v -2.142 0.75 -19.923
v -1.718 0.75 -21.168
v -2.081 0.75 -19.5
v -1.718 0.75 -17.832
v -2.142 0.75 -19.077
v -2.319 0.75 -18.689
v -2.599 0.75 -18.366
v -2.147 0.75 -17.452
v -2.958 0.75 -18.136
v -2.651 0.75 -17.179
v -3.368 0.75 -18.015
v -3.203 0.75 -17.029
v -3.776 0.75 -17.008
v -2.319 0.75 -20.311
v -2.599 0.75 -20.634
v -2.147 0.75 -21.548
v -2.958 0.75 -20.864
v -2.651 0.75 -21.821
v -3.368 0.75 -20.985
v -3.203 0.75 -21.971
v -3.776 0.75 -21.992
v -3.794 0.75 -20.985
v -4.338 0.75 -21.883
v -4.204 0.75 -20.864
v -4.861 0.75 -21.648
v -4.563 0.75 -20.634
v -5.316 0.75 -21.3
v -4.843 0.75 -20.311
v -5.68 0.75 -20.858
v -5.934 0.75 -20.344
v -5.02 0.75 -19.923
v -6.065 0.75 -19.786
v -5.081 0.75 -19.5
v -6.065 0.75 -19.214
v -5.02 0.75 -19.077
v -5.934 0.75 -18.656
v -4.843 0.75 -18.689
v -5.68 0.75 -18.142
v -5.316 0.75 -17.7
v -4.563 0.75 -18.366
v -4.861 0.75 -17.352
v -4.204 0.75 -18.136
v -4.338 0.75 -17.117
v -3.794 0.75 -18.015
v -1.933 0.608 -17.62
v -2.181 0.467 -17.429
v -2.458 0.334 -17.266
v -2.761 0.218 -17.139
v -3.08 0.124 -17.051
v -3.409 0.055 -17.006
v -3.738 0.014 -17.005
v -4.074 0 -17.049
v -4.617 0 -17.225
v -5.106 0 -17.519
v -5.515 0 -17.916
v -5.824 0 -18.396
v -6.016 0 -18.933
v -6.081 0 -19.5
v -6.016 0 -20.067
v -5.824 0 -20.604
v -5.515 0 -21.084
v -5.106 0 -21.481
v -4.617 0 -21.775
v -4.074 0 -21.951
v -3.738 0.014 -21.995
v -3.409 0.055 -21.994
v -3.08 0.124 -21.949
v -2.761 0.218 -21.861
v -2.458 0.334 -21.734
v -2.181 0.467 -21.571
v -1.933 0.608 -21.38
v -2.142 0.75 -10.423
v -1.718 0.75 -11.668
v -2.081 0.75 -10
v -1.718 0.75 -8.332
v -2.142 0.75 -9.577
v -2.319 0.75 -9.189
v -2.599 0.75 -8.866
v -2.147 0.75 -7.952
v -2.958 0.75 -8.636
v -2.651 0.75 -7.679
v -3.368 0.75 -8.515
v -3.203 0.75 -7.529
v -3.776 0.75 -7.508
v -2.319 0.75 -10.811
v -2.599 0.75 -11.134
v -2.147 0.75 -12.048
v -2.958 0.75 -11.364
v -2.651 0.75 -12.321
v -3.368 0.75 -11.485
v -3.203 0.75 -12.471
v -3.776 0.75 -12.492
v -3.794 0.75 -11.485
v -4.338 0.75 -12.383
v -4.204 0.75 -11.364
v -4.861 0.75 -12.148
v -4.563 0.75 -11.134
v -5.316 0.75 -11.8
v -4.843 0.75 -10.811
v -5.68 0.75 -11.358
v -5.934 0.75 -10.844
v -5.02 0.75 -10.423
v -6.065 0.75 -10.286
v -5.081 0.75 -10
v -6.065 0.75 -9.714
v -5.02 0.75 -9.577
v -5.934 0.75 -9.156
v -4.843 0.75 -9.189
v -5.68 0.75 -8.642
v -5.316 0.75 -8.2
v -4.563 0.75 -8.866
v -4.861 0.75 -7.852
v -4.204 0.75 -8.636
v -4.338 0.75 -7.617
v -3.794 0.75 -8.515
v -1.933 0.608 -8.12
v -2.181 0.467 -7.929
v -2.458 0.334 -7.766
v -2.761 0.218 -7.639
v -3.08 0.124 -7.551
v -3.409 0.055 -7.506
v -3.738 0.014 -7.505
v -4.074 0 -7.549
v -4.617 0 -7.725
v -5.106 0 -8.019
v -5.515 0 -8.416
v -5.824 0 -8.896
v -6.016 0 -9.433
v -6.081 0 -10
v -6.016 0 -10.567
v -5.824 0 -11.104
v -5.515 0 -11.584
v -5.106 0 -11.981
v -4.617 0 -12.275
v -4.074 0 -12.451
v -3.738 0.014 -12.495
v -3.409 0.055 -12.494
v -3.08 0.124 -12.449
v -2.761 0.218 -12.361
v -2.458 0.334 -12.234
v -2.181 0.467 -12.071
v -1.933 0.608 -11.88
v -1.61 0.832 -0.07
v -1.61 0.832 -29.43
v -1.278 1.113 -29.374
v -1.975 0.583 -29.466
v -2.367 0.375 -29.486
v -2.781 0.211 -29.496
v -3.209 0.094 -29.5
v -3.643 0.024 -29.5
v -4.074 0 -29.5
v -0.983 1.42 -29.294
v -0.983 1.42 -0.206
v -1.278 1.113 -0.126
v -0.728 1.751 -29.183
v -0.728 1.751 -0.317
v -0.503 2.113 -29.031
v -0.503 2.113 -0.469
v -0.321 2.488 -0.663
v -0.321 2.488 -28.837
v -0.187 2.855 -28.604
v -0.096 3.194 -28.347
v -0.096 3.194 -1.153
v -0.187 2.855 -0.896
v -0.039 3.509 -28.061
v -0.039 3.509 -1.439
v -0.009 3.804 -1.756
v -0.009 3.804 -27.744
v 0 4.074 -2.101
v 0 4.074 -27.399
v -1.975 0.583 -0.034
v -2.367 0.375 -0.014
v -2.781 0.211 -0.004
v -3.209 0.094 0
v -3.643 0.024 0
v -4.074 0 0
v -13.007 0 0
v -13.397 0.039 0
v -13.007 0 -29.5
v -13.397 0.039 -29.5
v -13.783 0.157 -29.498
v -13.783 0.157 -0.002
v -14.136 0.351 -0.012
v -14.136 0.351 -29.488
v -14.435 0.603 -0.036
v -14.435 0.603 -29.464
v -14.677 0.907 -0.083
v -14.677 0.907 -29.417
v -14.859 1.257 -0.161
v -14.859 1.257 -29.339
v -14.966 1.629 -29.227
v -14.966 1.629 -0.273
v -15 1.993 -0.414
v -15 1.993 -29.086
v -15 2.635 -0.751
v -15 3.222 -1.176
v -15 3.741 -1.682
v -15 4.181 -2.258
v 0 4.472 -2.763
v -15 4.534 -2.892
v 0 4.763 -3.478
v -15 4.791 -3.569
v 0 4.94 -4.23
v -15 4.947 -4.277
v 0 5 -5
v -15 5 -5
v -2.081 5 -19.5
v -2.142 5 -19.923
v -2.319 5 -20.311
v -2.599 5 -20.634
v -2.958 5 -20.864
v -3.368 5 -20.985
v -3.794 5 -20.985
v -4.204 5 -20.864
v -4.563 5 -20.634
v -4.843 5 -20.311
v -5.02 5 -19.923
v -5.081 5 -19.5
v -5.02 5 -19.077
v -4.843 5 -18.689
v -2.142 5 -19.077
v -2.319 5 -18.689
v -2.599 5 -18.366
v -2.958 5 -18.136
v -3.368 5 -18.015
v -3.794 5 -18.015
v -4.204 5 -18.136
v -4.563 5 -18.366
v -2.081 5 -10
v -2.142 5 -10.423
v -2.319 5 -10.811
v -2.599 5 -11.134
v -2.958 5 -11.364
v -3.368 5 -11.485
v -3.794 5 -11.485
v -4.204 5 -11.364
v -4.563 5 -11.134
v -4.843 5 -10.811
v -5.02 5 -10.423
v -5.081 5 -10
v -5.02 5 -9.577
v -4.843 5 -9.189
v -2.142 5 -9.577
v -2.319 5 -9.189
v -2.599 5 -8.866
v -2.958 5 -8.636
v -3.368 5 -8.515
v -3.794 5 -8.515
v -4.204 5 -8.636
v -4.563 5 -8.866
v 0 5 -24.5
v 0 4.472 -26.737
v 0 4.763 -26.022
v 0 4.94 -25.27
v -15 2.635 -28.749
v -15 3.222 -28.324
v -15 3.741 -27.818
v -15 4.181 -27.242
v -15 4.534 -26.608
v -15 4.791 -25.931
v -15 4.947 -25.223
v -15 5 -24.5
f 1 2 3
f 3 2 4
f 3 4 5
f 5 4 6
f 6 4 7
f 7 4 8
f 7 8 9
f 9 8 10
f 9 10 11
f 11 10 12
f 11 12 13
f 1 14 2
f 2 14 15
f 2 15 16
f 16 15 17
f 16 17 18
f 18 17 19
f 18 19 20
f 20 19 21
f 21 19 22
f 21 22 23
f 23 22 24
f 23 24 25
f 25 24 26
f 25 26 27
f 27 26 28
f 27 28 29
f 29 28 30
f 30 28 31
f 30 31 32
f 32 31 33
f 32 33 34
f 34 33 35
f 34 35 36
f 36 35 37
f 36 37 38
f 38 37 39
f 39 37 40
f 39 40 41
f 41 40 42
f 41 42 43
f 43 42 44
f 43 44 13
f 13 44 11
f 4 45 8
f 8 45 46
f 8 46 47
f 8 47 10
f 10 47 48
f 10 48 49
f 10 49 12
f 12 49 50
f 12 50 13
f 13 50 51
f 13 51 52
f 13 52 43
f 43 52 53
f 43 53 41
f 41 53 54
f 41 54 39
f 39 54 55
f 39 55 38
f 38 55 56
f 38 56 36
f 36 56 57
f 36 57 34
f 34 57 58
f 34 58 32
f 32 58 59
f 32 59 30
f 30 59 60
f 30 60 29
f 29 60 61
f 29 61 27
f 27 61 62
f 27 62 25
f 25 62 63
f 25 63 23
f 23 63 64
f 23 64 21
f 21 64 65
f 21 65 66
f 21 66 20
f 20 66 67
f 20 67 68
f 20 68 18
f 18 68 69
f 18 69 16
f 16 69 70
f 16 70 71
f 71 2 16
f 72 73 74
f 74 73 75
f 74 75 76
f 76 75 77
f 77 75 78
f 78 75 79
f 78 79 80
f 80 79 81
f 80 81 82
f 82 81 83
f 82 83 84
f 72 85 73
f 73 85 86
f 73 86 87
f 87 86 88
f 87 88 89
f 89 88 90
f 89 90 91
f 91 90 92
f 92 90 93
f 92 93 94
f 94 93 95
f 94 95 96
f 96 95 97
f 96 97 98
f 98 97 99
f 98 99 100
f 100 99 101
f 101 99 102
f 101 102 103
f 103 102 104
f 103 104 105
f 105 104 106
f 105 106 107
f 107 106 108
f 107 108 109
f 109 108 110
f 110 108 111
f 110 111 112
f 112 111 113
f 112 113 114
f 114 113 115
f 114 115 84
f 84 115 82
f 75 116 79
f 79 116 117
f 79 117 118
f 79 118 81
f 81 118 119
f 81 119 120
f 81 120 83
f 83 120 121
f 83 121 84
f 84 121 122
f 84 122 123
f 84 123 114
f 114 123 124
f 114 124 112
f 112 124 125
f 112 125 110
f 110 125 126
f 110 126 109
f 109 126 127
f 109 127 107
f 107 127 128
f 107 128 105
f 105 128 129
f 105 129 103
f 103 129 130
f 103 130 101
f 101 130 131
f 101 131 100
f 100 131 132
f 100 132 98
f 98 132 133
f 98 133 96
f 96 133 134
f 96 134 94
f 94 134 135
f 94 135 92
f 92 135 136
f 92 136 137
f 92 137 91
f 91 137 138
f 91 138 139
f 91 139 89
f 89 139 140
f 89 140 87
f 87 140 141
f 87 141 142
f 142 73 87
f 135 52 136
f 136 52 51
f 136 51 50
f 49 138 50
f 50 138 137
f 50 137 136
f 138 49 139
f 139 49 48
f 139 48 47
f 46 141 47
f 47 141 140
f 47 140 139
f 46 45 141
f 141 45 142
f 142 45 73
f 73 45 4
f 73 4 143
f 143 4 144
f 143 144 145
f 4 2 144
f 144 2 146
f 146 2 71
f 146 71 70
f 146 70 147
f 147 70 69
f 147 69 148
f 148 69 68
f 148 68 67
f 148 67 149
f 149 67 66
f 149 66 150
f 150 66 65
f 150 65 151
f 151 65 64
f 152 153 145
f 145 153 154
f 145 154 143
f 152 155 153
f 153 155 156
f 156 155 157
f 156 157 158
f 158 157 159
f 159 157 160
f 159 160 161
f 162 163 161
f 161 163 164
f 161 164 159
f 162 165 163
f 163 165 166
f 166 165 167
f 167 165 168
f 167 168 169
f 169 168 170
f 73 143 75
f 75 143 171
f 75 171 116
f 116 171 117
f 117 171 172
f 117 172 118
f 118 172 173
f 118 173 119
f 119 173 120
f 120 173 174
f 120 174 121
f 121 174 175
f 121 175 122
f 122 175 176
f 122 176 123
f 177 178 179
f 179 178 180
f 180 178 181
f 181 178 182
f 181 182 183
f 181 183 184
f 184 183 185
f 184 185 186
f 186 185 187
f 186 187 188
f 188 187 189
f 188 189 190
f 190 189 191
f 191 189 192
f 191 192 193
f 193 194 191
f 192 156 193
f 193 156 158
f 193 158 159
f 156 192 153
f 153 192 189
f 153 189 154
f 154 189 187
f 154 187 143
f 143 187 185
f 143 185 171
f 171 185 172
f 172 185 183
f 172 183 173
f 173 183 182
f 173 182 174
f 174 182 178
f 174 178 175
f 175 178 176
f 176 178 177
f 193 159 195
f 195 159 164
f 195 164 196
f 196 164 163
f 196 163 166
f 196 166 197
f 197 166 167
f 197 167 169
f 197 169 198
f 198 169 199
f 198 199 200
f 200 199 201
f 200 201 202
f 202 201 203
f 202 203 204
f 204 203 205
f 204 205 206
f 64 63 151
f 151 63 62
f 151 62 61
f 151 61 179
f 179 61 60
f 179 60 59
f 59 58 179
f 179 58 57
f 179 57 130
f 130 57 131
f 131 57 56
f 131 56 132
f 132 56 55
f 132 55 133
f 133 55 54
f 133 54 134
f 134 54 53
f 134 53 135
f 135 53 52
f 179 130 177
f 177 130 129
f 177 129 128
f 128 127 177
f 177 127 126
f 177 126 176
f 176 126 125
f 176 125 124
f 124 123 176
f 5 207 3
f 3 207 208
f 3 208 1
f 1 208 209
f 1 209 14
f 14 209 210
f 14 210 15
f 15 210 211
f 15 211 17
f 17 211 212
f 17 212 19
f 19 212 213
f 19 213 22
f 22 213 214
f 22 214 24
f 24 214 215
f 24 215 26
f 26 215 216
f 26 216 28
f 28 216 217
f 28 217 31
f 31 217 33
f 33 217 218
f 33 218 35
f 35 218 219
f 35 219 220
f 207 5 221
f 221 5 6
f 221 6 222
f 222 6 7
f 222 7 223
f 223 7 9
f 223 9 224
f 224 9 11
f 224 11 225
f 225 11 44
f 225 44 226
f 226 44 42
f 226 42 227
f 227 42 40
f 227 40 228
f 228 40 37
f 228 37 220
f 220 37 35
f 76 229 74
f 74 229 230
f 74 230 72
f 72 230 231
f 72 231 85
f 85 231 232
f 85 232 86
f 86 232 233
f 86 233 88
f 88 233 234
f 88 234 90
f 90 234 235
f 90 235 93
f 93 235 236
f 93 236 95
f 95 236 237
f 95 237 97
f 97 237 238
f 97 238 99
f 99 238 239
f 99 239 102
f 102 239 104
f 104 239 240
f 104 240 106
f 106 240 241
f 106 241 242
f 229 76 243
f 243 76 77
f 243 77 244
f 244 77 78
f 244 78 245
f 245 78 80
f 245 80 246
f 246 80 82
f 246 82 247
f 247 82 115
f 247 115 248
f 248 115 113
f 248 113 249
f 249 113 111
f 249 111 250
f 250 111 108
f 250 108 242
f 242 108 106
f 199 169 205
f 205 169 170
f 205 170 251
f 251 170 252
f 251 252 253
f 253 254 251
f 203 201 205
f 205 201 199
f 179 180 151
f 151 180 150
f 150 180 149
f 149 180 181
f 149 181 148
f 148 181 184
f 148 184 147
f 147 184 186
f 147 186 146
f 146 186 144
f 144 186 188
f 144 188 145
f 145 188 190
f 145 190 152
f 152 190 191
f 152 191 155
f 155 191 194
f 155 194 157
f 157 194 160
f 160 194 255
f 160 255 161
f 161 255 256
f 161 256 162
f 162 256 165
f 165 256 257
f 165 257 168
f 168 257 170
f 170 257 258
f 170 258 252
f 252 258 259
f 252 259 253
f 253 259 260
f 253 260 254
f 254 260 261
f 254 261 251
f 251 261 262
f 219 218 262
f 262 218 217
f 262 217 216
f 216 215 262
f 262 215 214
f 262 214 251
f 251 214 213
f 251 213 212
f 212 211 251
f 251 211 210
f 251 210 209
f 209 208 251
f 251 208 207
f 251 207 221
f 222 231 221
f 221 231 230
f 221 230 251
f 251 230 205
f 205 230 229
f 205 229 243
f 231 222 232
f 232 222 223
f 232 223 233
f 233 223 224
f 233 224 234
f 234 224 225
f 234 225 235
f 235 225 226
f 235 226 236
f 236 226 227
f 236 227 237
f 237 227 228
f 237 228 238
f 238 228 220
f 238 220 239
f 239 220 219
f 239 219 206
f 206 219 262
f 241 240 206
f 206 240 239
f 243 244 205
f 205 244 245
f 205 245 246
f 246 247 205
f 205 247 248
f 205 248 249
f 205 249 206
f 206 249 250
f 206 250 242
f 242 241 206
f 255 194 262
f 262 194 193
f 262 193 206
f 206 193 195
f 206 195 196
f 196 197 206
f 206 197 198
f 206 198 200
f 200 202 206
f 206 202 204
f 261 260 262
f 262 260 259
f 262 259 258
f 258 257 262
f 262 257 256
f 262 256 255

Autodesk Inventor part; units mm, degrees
ref_plane "YZ Plane" through (0, 0, 0) normal (1, 0, 0) x (0, 1, 0)
ref_plane "XZ Plane" through (0, 0, 0) normal (0, 1, 0) x (-1, 0, 0)
ref_plane "XY Plane" through (0, 0, 0) normal (0, 0, 1) x (1, 0, 0)
sketch "Sketch1" plane through (0, 0, 0) normal (0, 1, 0) x (-1, 0, 0)
  line L0 (0, 0) -> (15, 0)
  line L1 (15, 0) -> (15, -29.5)
  line L2 (15, -29.5) -> (0, -29.5)
  line L3 (0, -29.5) -> (0, 0)
  dimension "d0" = 15
  dimension "d1" = 29.5
extrude "Extrusion1" add sketch "Sketch1" along normal blind 5
fillet "Fillet1" radius 5 2 edges at (-7.5, 5, 0) (-7.5, 5, -29.5)
fillet "Fillet2" radius 4.074 1 edges at (0, 0, -14.75)
sketch "Sketch2" plane through (0, 0, 0) normal (0, -1, 0) x (1, 0, 0)
  circle A0 centre (-3.581, -10) radius 1.5
  line L0 (-15, -29.5) -> (-15, 0) projected
  line L1 (-15, -14.75) -> (-4.074, -14.75)
  line L2 (-4.074, 0) -> (-4.074, -29.5) projected
  circle A1 centre (-3.581, -19.5) radius 1.5
  line L3 (0, -27.3987) -> (0, -2.1013) projected
  point P0 (0, 0)
  dimension "d6" = 3
  dimension "d7" = 4.75
  dimension "d8" = 10.926
  dimension "d10" = 3
  dimension "d11" = 4.75
  dimension "d15" = 3.581
  dimension "d16" = 3.581
extrude "Extrusion2" cut sketch "Sketch2" against normal up to surface (5 mm away)
fillet "Fillet3" radius 1.993 1 edges at (-15, 0, -14.75)
sketch "Sketch3" plane through (0, 0, 0) normal (0, -1, 0) x (1, 0, 0)
  circle A0 centre (-3.581, -10) radius 2.5
  circle A1 centre (-3.581, -19.5) radius 2.5
  circle A2 centre (-3.581, -10) radius 1.5 projected
  circle A3 centre (-3.581, -19.5) radius 1.5 projected
  point P0 (0, 0)
  dimension "d18" = 5
  dimension "d19" = 5
  dimension "d20" = 0
  dimension "d21" = 0
  dimension "d22" = 0
  dimension "d23" = 0
extrude "Extrusion3" cut sketch "Sketch3" against normal blind 0.75
properties part number "bottomclip" material "ABS Plastic"
